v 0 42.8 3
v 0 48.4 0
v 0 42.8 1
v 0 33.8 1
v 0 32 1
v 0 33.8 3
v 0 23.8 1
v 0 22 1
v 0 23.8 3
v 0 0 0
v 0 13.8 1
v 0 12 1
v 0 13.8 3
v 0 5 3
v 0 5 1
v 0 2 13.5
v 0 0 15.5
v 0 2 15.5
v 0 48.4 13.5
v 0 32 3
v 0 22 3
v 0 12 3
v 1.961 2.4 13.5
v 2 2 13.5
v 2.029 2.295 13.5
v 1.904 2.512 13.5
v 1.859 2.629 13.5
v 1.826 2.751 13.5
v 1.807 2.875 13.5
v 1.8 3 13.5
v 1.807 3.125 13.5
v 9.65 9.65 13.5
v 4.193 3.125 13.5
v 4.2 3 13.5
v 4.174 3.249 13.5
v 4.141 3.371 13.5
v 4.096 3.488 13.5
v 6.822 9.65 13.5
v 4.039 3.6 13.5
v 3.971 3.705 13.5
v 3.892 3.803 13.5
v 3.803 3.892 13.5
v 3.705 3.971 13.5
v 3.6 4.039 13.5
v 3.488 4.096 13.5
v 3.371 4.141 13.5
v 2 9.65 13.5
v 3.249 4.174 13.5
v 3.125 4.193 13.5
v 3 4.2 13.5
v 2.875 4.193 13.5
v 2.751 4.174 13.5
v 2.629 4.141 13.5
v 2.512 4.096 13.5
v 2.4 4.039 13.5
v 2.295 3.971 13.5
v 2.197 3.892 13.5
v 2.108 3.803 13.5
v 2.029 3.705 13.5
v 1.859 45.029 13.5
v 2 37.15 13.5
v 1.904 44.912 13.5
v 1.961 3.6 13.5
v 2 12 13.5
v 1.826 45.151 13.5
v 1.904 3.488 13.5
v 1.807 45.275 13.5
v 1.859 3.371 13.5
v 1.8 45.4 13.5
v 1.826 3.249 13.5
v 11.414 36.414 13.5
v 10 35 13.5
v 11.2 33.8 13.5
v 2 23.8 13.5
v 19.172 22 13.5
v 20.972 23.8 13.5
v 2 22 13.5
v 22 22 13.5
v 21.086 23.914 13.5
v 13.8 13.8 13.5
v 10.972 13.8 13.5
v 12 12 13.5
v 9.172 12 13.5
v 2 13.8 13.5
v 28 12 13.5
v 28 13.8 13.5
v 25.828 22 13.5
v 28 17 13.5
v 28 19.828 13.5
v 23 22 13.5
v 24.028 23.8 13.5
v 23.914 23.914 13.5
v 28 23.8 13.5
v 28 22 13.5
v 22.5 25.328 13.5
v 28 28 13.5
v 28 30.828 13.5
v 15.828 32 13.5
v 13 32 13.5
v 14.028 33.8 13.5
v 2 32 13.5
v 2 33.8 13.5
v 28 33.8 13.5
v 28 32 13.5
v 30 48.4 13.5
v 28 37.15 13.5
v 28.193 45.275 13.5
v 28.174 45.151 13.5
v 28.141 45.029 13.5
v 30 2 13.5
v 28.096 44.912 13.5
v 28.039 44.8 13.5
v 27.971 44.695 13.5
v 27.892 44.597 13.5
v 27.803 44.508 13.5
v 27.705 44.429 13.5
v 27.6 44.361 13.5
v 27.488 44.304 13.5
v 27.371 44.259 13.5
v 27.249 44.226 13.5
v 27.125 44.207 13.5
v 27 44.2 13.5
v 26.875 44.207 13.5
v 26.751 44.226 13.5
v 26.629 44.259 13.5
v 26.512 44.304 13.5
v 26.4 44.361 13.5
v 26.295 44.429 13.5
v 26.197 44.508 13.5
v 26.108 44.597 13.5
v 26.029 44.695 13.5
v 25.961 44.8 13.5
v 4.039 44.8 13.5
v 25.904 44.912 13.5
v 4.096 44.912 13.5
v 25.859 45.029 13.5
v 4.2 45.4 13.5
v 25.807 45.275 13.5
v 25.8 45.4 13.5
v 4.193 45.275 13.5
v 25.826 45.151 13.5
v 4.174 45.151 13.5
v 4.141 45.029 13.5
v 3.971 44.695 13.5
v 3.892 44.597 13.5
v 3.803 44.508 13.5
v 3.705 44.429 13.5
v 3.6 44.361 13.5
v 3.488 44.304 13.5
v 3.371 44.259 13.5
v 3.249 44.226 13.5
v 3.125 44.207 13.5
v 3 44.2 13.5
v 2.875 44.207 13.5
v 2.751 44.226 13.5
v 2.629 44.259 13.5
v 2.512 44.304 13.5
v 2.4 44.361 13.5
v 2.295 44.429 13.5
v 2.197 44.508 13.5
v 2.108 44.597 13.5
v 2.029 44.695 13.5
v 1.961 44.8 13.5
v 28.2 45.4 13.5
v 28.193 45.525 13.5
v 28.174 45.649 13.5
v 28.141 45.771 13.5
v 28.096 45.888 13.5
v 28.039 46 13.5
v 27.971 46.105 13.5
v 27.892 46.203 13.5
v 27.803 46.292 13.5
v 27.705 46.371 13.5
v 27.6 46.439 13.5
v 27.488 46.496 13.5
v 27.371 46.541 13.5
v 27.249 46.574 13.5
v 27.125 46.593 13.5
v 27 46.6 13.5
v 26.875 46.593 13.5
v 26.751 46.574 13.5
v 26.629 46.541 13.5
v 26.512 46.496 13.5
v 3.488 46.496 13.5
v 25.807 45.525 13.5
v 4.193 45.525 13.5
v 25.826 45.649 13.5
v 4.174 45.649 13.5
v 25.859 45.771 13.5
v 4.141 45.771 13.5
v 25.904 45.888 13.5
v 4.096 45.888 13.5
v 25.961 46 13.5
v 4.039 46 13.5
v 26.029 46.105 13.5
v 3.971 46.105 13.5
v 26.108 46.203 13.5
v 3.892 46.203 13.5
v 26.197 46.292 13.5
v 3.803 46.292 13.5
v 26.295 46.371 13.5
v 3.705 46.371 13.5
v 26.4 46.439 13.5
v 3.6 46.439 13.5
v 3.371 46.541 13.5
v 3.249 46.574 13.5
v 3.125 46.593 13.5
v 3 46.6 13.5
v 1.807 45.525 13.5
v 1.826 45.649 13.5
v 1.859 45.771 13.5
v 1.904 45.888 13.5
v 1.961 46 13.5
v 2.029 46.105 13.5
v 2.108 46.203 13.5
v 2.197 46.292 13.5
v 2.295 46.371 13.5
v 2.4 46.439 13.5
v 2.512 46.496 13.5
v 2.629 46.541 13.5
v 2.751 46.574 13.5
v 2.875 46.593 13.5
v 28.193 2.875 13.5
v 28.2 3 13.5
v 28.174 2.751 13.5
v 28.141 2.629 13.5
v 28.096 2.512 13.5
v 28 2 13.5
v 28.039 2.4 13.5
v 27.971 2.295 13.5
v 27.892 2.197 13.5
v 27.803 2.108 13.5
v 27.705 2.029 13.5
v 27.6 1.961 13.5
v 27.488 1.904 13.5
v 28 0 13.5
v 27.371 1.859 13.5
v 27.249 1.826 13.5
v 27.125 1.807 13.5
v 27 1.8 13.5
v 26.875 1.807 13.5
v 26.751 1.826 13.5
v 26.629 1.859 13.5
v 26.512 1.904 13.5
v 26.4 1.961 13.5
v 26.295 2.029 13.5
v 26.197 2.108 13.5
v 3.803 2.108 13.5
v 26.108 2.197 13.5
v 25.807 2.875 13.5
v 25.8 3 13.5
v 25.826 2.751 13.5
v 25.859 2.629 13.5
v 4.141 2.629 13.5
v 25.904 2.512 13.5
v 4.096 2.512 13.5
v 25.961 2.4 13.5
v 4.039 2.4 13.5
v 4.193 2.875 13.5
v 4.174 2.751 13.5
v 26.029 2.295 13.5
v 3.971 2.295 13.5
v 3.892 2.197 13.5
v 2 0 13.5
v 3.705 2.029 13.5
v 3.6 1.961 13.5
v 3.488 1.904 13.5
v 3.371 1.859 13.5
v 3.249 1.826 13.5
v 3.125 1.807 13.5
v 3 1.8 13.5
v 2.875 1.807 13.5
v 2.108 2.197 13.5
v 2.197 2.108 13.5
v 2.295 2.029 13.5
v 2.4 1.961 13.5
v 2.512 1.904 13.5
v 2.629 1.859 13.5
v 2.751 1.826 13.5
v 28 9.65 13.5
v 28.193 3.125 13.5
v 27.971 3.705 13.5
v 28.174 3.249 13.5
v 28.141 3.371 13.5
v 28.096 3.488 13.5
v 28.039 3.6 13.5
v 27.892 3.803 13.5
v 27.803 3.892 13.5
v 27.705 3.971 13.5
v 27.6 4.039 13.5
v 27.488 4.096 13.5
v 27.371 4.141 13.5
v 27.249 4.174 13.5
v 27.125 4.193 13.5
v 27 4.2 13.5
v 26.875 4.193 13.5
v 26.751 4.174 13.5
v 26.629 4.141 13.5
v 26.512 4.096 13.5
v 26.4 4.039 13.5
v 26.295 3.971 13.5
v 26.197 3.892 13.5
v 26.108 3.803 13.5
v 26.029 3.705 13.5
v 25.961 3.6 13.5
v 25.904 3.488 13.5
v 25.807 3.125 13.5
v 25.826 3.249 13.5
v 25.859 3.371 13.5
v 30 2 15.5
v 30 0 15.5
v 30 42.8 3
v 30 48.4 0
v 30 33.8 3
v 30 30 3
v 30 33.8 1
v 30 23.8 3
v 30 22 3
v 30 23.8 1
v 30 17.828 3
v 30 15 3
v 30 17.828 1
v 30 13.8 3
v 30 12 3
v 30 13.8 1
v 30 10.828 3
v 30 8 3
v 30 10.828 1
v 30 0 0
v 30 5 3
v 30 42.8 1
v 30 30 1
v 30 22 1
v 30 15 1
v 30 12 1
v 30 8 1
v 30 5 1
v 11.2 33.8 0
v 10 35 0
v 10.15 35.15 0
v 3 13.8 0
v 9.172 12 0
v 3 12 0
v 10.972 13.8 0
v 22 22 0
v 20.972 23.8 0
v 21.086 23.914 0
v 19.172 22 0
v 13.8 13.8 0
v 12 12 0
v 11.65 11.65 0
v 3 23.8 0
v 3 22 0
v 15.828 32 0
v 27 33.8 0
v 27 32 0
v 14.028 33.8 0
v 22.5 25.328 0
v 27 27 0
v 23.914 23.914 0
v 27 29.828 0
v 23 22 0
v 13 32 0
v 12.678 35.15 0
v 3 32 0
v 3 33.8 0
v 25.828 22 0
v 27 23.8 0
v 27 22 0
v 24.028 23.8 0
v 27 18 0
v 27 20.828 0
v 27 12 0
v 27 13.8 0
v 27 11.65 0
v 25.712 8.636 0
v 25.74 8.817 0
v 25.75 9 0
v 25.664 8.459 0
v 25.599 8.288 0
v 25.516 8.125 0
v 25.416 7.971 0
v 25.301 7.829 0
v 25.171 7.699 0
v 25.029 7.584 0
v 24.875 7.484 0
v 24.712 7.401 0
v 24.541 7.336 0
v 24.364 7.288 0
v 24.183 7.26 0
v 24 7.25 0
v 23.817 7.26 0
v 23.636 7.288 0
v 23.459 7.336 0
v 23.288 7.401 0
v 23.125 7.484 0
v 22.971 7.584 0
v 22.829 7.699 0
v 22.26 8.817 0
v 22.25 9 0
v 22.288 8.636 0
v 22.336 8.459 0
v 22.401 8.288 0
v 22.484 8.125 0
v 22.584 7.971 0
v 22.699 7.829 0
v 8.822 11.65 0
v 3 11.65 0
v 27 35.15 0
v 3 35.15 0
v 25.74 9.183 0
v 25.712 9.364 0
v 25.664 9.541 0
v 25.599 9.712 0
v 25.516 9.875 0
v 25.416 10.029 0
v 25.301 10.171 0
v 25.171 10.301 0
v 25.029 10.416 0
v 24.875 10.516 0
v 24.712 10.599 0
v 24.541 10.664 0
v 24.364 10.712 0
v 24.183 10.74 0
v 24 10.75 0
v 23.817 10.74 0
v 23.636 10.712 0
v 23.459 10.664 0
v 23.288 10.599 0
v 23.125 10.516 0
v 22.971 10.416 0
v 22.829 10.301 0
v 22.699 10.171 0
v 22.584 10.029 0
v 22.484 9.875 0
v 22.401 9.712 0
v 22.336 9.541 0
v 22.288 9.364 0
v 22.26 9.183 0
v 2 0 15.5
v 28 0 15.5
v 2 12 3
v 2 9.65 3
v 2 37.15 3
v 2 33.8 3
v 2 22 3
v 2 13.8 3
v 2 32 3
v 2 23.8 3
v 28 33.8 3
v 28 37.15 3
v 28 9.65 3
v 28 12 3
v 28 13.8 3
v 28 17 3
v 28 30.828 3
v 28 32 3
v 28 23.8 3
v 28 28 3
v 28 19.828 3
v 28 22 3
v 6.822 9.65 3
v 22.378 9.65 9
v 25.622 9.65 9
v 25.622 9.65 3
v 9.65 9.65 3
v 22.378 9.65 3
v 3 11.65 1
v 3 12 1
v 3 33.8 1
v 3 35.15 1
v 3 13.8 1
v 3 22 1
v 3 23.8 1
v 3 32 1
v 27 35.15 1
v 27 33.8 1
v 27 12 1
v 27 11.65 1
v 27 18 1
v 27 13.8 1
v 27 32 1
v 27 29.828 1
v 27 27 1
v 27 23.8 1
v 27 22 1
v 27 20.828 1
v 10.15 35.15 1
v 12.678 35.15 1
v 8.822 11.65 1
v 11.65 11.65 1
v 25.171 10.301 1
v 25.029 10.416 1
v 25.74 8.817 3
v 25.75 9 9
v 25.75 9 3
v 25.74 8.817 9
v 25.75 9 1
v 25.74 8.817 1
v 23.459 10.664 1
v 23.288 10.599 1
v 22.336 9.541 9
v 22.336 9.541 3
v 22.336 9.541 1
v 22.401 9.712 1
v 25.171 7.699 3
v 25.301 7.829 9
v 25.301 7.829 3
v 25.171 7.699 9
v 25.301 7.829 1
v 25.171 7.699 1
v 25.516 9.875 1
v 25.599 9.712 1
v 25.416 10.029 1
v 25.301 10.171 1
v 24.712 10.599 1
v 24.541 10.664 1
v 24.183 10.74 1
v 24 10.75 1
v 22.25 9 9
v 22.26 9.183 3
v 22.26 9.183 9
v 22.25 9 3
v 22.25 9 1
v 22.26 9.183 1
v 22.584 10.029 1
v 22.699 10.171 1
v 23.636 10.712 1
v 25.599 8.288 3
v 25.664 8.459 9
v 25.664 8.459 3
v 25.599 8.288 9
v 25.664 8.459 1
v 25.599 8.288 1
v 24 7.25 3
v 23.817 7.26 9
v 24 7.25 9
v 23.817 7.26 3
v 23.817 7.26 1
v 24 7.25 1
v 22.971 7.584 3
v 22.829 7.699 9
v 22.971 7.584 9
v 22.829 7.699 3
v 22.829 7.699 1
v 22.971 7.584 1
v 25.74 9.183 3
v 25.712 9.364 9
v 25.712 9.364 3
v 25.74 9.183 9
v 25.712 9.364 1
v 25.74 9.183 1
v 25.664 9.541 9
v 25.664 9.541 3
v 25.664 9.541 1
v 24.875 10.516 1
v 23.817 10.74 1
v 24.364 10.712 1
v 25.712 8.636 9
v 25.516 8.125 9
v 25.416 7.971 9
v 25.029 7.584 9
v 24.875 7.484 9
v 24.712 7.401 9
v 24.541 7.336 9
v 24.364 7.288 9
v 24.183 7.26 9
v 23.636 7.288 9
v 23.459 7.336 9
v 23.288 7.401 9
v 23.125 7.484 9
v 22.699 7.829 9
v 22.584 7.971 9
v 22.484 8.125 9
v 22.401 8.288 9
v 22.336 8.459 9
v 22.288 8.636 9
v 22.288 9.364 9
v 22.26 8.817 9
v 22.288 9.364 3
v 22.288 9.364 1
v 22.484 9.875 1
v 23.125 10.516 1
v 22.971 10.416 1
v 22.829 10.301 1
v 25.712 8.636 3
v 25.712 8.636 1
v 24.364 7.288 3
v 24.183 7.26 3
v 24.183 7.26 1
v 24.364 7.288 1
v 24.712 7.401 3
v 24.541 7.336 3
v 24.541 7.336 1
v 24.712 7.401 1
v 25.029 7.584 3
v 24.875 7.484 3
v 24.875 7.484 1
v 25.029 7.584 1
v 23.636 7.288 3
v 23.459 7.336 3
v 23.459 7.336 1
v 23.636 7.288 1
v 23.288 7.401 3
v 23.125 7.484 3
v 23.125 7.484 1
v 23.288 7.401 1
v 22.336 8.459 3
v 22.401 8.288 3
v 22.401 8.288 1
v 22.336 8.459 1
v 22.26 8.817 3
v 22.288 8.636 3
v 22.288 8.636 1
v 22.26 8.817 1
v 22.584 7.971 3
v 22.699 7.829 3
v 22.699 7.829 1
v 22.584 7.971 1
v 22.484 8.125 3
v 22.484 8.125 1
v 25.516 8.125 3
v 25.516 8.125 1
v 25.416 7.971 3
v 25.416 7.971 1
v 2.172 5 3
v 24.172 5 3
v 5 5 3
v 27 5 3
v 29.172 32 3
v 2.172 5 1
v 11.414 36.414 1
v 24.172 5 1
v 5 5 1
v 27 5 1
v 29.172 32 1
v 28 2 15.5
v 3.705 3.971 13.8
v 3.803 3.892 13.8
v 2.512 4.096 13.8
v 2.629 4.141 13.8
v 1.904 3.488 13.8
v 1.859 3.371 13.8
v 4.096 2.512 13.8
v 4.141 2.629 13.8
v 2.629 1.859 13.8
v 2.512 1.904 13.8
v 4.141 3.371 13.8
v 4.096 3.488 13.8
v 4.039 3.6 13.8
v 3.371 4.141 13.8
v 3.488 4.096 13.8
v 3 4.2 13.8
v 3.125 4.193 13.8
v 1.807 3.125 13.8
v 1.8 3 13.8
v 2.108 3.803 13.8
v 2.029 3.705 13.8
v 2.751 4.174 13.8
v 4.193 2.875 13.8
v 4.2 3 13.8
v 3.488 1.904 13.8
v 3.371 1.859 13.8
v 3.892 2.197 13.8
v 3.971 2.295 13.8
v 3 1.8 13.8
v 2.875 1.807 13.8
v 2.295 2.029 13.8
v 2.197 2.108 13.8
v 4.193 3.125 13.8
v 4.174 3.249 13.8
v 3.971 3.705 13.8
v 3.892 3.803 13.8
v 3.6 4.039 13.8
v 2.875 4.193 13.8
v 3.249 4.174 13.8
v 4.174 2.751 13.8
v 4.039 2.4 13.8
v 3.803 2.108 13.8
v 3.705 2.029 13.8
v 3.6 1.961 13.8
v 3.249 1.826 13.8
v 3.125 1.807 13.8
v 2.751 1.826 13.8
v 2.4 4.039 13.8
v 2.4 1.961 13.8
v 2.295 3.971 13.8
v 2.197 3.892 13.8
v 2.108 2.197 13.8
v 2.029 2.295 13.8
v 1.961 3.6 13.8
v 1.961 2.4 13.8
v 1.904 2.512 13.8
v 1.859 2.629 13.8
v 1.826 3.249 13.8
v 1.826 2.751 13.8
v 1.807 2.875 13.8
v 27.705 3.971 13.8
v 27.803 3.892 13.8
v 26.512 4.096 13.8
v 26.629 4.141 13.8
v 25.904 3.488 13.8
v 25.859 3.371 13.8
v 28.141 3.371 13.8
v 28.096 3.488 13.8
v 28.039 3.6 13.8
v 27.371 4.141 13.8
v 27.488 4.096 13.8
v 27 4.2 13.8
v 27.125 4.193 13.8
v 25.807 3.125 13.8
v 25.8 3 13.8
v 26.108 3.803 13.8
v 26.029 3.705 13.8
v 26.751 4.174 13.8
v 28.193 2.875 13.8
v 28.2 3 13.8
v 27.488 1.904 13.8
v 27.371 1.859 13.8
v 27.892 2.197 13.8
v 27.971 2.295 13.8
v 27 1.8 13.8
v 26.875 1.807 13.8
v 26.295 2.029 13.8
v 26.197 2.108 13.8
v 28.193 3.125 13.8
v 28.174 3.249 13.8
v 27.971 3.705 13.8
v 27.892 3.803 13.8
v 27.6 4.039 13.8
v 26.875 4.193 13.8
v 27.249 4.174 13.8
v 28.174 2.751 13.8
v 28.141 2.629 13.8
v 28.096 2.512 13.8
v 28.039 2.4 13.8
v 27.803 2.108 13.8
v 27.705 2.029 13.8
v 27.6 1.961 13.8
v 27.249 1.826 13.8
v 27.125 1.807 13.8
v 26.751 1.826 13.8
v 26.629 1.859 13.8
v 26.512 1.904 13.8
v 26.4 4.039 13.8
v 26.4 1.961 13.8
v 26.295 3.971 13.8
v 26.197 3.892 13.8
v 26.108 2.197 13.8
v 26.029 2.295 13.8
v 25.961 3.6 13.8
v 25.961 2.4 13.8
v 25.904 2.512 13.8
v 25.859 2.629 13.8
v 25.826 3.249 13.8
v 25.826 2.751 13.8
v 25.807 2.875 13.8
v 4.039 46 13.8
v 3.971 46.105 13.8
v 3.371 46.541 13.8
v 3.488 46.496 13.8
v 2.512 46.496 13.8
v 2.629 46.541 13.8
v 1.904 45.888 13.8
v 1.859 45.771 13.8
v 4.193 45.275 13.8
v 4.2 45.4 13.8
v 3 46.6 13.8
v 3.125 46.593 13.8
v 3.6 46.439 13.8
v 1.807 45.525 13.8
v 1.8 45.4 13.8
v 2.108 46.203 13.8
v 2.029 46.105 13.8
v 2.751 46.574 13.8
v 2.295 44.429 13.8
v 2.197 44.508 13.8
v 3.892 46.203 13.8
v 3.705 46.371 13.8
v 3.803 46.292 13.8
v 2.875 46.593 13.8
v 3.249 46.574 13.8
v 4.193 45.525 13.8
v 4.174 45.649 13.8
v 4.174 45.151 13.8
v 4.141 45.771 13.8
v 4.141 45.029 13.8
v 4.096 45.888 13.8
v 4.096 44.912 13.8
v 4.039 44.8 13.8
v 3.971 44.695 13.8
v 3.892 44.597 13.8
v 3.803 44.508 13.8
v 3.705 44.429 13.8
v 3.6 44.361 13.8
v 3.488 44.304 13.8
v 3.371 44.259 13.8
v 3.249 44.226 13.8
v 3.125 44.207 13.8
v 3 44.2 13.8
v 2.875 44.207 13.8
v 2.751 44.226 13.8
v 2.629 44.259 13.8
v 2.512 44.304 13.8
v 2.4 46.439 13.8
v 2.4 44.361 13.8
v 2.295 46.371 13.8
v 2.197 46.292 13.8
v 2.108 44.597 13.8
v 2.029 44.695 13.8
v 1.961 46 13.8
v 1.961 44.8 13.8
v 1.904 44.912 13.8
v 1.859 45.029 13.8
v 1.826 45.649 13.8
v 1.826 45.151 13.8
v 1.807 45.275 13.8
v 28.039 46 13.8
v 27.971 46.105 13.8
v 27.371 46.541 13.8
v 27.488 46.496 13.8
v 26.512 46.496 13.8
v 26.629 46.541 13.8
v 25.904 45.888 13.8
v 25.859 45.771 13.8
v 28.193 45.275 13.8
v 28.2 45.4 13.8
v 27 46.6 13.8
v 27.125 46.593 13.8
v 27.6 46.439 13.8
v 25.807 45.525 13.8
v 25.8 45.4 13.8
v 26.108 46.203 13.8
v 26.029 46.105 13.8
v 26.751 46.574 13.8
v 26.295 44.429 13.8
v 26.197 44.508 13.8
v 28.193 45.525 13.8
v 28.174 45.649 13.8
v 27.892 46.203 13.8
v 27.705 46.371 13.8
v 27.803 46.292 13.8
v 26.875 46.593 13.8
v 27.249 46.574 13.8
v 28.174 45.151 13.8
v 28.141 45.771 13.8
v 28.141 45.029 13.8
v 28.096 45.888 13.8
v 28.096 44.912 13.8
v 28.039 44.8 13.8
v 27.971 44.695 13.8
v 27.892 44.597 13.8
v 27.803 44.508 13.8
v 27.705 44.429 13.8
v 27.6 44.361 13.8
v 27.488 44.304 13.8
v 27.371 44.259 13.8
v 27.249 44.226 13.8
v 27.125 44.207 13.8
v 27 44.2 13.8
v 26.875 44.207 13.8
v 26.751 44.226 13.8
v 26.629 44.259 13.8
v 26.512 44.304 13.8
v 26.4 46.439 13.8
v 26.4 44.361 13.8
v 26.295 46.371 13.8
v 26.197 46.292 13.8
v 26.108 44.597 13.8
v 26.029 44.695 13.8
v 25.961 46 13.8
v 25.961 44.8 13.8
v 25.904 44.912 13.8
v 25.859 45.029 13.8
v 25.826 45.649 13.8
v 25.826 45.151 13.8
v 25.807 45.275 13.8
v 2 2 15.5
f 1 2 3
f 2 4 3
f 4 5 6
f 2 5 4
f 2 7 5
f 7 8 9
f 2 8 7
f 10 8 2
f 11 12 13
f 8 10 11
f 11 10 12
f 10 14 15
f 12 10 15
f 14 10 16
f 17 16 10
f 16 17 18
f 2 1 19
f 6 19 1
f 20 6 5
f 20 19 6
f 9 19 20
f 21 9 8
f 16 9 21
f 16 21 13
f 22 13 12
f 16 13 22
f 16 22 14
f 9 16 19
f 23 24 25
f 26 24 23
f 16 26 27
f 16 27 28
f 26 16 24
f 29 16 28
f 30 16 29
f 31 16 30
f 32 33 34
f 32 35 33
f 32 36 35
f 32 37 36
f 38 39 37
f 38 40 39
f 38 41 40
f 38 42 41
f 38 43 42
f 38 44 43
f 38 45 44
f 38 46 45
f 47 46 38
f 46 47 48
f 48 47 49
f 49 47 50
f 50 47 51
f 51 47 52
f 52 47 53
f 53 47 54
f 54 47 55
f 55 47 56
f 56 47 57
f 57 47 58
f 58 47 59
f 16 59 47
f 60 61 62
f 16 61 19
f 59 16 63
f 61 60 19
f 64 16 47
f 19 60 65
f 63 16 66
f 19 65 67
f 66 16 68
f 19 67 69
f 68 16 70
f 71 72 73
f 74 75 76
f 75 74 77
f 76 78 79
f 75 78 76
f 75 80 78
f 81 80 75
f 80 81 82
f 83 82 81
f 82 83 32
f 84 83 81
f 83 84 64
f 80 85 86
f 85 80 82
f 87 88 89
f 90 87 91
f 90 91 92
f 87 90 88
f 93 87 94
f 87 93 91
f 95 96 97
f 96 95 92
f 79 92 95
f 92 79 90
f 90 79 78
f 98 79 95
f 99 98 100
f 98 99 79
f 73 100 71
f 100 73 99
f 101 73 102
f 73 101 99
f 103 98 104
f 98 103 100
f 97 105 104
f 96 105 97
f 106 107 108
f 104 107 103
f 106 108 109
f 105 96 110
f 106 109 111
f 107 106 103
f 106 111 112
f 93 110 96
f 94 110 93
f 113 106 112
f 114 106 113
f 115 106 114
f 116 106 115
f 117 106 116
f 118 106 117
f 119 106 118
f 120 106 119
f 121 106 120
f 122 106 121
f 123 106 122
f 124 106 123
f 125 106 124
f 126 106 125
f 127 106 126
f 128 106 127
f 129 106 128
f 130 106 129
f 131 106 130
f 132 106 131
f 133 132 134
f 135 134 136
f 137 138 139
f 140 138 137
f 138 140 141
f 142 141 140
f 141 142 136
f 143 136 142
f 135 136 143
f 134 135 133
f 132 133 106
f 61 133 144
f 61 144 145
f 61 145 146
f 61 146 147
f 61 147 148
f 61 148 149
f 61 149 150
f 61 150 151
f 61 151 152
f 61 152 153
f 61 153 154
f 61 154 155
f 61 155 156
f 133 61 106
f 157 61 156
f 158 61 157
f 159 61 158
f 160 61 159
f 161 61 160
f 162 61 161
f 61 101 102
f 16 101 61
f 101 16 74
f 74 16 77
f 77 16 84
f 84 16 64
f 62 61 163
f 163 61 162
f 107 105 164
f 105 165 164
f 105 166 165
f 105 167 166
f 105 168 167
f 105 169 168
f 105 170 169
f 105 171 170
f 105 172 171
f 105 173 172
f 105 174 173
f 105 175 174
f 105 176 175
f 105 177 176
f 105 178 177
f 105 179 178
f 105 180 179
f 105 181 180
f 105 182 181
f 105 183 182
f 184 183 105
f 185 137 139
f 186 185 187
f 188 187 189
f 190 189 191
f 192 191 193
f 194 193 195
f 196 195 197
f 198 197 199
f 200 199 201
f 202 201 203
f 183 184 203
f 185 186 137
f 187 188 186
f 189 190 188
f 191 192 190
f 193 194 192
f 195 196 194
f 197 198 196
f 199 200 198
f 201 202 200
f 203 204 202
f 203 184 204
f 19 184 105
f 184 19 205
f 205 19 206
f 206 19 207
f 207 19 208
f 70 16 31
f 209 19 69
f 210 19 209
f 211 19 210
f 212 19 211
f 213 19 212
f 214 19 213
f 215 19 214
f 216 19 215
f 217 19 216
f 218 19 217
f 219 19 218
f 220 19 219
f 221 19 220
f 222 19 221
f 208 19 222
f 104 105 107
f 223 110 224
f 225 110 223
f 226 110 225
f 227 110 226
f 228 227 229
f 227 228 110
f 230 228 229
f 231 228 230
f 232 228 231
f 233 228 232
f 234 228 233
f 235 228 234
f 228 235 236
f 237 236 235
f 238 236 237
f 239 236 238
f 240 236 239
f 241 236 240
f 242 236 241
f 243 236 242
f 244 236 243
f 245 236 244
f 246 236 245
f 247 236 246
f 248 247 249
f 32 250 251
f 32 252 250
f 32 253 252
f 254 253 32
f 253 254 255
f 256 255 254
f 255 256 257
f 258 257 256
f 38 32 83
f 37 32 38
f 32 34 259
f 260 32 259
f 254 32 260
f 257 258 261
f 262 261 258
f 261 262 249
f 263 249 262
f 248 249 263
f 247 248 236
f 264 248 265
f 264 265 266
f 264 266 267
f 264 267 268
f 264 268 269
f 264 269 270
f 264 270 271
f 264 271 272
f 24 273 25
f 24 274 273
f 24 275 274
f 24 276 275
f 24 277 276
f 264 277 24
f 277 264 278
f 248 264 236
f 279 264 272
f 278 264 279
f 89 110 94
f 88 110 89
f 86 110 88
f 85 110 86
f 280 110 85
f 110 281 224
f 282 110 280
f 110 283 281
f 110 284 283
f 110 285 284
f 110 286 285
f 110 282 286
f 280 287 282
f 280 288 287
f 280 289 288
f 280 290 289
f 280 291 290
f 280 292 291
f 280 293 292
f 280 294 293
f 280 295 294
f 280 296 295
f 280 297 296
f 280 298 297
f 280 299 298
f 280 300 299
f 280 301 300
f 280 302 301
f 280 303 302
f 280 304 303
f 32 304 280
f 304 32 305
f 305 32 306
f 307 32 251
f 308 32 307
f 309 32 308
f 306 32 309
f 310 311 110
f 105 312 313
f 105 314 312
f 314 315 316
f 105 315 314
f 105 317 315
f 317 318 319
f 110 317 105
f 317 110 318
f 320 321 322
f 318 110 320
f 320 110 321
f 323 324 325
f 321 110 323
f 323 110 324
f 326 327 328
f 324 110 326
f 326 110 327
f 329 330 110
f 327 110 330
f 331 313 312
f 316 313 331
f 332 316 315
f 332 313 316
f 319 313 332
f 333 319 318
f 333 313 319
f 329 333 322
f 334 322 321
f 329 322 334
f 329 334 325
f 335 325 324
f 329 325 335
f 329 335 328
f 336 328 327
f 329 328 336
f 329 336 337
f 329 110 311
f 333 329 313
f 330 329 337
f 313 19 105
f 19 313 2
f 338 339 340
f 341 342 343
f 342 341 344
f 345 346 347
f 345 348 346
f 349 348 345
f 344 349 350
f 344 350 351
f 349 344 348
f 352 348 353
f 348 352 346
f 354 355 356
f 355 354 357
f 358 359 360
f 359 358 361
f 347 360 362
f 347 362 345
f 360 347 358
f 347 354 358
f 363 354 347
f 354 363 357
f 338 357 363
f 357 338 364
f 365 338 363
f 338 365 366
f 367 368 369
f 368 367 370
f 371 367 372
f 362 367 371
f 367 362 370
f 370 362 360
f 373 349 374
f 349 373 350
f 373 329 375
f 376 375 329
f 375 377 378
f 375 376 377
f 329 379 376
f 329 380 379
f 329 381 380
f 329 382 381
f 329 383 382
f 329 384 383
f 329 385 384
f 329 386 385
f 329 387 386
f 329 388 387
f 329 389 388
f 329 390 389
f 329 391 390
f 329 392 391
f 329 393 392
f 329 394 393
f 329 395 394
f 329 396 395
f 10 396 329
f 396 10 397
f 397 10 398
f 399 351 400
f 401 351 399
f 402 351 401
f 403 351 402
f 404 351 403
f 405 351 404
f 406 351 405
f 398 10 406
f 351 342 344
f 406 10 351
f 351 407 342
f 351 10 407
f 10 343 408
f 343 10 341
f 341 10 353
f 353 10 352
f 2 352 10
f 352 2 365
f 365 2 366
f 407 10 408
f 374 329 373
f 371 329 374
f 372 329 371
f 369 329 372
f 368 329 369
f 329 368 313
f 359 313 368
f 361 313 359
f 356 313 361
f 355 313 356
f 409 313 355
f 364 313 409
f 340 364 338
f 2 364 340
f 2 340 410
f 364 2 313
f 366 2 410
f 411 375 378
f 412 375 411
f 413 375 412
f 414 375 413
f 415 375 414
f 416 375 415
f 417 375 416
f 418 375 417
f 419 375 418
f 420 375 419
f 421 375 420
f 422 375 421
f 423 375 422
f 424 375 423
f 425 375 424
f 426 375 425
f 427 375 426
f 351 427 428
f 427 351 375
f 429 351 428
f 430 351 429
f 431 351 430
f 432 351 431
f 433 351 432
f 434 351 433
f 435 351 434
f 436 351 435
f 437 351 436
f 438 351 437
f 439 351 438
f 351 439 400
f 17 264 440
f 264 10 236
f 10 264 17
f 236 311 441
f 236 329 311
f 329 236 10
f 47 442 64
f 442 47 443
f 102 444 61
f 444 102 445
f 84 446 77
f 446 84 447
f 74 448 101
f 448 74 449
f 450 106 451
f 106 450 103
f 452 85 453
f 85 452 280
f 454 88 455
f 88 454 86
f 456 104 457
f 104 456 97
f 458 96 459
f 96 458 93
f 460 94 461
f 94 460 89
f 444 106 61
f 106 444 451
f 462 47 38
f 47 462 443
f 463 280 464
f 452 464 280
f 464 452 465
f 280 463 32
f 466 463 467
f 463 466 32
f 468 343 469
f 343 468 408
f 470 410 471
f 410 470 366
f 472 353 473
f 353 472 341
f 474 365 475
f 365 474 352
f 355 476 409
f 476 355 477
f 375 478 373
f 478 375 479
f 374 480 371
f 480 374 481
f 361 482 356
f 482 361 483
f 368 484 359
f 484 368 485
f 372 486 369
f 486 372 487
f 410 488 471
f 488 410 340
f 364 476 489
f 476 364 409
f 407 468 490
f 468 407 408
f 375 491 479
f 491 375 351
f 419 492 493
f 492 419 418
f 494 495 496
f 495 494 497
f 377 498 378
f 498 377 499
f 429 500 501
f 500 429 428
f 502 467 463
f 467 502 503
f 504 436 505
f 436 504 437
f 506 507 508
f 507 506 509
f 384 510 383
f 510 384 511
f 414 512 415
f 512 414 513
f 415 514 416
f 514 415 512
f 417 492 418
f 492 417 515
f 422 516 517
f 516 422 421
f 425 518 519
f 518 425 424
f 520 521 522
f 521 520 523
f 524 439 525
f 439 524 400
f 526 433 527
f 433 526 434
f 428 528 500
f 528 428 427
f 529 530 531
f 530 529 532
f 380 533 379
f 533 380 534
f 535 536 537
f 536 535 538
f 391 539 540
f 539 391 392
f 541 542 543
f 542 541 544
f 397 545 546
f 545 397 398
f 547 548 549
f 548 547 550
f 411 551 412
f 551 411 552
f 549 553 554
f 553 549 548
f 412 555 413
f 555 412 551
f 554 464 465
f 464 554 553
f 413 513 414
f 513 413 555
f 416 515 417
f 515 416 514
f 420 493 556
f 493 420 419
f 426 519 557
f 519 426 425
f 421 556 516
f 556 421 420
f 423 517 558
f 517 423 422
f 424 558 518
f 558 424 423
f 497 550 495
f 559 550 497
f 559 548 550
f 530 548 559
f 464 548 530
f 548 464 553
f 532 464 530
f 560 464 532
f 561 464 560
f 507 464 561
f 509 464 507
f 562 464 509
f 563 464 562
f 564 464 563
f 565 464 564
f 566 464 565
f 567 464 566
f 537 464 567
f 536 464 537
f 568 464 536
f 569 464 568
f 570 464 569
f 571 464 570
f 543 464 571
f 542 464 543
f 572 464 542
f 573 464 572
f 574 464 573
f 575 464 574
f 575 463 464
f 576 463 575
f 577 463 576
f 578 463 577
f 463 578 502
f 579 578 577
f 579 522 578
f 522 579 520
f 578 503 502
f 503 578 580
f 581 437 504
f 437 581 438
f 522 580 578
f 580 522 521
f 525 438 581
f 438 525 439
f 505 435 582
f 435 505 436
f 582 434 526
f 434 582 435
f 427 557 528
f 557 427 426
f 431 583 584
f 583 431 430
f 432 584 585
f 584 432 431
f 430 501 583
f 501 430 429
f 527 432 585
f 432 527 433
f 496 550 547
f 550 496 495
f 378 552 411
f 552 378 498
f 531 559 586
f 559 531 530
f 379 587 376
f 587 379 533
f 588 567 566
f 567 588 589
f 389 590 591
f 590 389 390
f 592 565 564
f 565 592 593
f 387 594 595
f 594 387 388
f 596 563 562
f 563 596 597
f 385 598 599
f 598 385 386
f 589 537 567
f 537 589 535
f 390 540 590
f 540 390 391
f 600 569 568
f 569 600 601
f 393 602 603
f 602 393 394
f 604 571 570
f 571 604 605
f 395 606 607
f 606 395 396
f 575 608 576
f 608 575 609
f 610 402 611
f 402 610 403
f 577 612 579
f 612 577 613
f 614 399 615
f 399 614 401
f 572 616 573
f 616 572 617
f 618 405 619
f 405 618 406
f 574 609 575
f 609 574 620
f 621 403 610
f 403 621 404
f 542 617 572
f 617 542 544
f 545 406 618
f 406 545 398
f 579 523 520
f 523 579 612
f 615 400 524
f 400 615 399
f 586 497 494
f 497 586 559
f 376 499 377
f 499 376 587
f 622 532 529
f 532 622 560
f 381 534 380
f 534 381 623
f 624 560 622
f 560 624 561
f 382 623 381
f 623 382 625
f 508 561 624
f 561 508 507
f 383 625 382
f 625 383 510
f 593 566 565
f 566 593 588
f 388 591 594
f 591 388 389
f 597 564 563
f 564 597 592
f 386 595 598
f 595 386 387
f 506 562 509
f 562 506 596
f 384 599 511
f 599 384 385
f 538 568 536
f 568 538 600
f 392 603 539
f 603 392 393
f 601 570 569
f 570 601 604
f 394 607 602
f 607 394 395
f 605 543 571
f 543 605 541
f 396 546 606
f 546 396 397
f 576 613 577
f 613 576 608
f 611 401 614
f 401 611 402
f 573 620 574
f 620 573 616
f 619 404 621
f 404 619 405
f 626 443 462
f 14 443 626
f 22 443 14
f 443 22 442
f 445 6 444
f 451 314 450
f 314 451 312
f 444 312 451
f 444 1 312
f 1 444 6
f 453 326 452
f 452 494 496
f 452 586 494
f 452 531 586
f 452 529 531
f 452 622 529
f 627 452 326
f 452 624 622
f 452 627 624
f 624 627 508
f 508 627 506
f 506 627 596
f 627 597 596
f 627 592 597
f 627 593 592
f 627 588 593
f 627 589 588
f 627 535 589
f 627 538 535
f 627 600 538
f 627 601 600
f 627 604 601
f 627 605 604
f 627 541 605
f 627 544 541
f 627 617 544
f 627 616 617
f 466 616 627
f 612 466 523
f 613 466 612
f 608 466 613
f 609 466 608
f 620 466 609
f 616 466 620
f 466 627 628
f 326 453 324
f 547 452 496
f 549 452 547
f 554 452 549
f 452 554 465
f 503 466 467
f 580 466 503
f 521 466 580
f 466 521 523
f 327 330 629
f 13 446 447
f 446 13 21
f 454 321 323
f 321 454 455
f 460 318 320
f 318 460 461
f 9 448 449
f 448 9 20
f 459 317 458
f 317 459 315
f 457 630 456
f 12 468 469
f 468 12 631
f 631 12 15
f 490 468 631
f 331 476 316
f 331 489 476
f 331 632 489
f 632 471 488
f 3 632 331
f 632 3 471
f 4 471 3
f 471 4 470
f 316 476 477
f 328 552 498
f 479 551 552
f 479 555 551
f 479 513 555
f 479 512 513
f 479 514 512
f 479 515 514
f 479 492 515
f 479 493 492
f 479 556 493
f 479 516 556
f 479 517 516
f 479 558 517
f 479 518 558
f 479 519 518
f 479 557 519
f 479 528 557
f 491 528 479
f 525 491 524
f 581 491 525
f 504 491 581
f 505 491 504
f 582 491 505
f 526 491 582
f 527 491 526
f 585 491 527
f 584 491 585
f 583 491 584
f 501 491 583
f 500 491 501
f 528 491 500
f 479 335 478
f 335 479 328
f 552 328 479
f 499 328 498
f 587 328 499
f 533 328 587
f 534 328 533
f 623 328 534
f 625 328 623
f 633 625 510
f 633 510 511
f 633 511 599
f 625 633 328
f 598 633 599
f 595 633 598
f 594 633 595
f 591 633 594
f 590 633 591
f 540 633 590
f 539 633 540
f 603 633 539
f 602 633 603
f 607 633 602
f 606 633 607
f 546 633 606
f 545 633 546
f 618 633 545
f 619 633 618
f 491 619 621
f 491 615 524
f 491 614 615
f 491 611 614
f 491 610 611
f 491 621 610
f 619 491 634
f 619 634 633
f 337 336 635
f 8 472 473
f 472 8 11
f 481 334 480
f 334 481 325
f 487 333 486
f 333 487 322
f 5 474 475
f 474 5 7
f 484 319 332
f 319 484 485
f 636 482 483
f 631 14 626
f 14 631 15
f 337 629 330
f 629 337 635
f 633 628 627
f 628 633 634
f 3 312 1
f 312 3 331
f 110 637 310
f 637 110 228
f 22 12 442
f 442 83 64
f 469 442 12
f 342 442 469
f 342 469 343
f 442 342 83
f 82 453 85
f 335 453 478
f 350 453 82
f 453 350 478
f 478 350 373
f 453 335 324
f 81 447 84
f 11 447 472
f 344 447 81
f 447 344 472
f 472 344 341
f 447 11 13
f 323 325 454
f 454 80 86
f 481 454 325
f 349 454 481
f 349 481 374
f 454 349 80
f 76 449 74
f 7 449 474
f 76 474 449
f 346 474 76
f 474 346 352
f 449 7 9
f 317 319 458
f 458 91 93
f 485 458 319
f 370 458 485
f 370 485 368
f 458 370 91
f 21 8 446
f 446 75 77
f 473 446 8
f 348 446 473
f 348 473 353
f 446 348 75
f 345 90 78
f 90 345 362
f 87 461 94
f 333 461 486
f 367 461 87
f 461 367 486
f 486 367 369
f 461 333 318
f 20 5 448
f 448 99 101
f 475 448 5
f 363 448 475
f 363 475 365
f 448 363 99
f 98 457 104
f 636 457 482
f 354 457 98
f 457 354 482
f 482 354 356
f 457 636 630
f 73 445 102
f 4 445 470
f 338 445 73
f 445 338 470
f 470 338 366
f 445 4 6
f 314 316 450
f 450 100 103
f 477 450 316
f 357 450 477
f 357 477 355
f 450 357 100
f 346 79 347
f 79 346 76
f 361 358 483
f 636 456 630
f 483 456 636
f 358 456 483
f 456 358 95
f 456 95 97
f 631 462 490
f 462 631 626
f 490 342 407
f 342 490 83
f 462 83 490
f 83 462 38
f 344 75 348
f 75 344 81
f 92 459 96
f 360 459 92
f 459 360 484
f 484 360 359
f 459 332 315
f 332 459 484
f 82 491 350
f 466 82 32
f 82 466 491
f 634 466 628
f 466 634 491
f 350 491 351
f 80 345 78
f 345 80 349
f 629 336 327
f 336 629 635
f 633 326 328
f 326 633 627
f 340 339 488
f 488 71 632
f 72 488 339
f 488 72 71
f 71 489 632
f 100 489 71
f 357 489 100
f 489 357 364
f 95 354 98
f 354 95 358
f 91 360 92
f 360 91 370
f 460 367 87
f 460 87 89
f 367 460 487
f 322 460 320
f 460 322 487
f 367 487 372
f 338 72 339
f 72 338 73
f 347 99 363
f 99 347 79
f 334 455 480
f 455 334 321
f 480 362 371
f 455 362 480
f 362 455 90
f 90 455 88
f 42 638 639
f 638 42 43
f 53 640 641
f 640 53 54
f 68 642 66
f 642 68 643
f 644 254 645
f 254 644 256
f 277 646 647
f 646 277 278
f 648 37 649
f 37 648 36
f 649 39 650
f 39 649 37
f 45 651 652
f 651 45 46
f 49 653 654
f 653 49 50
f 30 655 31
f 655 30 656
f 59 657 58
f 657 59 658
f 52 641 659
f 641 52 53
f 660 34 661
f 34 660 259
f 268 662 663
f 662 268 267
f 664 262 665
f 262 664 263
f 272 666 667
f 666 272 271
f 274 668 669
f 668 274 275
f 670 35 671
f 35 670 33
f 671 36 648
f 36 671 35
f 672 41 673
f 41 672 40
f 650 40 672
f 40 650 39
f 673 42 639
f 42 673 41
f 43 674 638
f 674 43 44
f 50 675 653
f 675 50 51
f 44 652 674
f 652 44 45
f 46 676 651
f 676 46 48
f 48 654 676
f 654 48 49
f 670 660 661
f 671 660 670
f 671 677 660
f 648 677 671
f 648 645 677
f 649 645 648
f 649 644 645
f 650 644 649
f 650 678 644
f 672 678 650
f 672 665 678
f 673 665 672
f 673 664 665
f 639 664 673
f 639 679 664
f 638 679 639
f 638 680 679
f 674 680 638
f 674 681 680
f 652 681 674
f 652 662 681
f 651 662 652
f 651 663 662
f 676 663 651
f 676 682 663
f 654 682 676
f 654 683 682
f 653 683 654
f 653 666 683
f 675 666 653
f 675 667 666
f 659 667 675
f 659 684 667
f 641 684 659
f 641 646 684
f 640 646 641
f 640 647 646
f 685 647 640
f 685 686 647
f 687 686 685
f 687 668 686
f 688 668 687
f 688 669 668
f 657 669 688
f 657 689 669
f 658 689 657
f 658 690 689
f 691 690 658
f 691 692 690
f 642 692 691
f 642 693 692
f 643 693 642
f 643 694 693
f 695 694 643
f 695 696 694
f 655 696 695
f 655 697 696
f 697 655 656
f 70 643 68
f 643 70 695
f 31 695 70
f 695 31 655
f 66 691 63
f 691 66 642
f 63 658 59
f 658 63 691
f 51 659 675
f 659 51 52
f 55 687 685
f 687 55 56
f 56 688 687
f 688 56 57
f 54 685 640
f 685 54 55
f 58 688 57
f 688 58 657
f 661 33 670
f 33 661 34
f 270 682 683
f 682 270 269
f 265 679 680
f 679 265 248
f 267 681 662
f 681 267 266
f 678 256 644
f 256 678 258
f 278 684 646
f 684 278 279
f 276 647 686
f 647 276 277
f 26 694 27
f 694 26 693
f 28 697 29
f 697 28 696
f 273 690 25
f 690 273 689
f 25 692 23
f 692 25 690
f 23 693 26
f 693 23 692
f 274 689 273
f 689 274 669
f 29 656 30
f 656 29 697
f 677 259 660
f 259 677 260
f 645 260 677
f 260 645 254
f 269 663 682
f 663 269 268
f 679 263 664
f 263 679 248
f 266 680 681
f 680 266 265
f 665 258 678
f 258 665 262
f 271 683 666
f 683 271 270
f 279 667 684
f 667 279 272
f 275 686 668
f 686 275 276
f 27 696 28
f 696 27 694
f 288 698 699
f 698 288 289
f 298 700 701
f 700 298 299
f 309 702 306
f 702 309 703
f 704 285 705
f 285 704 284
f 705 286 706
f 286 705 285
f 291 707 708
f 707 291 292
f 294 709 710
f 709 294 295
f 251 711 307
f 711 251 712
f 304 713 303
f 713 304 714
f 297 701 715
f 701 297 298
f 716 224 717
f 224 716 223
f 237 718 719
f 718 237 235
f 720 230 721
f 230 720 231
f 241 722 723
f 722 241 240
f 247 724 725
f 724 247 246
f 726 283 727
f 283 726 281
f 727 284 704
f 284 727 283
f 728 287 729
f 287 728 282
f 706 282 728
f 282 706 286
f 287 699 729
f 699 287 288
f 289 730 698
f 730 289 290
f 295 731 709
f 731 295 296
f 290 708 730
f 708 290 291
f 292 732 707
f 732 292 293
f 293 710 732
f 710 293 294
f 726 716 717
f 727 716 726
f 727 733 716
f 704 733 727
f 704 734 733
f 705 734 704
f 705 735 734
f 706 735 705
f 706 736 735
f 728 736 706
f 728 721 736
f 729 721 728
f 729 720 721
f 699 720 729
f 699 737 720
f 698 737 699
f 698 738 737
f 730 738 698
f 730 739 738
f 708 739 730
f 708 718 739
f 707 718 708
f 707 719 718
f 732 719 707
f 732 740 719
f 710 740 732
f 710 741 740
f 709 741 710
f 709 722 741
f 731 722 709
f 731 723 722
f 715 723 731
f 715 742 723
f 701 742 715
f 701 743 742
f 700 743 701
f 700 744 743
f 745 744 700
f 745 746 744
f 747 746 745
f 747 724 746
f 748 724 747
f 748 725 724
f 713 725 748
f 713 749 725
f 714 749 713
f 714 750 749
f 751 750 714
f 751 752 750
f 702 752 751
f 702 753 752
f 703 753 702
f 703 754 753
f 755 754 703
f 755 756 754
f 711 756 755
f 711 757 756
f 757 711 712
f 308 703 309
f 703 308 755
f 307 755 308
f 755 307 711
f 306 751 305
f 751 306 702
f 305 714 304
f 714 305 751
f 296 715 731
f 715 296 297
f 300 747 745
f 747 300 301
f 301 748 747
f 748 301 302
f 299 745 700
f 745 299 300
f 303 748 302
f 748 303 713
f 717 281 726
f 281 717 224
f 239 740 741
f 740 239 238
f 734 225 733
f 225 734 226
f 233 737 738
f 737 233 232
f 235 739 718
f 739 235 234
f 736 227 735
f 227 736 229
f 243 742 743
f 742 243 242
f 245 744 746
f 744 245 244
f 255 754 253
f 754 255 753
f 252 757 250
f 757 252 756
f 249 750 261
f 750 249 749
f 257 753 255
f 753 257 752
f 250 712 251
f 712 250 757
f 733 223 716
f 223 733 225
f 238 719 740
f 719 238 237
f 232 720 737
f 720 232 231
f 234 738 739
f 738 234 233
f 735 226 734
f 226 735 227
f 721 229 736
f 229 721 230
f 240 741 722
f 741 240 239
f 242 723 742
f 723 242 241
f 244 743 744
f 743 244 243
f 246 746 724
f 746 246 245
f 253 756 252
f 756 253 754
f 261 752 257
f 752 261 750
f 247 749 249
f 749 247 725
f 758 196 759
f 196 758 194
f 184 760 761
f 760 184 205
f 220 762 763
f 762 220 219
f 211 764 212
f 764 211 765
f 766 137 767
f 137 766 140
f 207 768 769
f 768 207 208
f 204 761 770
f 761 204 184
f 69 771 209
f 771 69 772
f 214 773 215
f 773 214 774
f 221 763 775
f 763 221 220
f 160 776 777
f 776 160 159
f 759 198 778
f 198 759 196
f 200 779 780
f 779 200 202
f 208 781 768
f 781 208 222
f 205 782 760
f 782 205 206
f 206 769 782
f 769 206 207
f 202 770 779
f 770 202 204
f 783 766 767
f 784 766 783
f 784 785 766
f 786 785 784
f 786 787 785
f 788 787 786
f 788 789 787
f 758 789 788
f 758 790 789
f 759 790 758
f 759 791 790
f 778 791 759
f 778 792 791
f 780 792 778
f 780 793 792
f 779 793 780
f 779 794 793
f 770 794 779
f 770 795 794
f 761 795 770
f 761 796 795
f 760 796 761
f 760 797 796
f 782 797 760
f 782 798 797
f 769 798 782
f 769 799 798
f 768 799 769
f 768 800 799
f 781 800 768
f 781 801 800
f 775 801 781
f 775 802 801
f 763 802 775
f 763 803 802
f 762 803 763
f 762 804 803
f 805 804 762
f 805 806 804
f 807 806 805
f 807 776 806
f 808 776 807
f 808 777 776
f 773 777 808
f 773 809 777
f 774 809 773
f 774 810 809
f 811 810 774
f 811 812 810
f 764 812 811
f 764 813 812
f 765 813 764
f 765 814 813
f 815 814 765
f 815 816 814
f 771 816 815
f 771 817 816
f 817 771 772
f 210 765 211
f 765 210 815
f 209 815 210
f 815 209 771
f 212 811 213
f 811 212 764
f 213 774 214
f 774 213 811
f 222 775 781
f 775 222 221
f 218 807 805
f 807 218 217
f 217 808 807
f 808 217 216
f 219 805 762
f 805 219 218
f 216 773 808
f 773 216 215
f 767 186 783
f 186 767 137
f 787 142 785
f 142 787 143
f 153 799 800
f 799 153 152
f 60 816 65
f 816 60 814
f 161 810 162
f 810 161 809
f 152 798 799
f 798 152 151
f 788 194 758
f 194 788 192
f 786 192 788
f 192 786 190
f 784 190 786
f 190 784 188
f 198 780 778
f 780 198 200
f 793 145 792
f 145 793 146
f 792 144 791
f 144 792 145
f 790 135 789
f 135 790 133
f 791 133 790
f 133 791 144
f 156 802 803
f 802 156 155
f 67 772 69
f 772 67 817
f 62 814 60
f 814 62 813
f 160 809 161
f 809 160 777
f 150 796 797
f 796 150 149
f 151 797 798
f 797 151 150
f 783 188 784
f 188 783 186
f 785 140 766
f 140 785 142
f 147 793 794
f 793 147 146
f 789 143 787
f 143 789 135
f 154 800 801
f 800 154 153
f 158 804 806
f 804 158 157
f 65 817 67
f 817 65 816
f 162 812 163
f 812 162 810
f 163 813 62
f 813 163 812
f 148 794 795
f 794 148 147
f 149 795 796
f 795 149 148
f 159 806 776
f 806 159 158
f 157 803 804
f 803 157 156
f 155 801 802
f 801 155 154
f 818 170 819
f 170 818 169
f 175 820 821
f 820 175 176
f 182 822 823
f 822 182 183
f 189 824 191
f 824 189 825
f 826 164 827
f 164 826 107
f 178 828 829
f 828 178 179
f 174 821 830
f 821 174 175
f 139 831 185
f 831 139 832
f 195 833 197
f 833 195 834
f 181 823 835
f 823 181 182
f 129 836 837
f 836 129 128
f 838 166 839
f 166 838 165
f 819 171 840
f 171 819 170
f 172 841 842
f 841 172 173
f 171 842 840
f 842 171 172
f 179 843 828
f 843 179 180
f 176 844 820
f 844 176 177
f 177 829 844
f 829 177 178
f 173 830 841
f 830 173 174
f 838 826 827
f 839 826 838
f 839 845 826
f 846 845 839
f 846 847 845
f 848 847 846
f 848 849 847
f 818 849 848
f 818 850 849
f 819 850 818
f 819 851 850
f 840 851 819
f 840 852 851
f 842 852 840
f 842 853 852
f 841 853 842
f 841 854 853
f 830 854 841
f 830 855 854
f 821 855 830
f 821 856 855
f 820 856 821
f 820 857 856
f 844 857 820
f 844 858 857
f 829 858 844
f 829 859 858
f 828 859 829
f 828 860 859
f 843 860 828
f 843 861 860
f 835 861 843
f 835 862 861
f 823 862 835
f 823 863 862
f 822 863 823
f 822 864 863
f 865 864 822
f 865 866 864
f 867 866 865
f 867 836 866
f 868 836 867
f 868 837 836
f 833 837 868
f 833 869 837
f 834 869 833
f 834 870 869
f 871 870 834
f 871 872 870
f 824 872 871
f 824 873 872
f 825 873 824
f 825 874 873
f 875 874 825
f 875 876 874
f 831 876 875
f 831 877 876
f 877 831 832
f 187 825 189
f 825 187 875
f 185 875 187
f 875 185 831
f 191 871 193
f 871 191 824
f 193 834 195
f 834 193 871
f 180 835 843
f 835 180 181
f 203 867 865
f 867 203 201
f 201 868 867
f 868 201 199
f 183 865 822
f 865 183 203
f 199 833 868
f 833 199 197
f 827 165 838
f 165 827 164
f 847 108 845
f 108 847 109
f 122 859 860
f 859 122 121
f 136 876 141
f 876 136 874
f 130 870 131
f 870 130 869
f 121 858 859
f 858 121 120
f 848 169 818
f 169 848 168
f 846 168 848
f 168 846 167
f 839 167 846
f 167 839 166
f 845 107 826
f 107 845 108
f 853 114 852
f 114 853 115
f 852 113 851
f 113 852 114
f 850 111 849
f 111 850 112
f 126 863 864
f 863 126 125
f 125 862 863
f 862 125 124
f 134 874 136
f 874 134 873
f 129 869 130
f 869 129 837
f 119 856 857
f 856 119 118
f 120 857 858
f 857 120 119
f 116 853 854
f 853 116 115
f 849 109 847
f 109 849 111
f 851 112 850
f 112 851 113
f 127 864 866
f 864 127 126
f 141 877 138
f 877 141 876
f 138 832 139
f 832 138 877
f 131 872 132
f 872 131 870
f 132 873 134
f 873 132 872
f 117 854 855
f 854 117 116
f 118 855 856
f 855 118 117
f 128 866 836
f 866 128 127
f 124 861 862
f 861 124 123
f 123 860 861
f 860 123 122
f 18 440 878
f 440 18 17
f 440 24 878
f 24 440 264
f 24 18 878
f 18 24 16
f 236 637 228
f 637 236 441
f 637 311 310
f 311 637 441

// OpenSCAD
/*
 * FluxGuard Enclosure - BRIDGE (Component Support)
 * Print: Flat (as-is)
 * Supports: RECOMMENDED for alignment tabs
 */

// --- Parameters ---
pcb_z = 10.0; 
raceway_w = 14.0;
separator_w = 1.6;
wall = 1.8;
box_w = 63.0;
$fn = 60;

bridge_span = box_w - 2*wall - raceway_w - separator_w;
bridge_h = 13.5;

module component_bridge() {
    bridge_len = 30.0;
    
    union() {
        difference() {
            cube([bridge_len, bridge_span + 2*wall + 1, bridge_h]);
            translate([2, (bridge_span + 3 - 27.5)/2, 2.5]) cube([26, 27.5, 50]); 
            translate([3, (bridge_span + 3 - 23.5)/2, -1]) cube([24, 23.5, 100]); 
            translate([bridge_len - 6, 9, -1]) cylinder(d=3.5, h=10); 
            translate([-1, 5, 1]) cube([32, bridge_span - 6, 2]);
        }
        
        // Ribs
        for(y_pos = [2, 12, 22, 32]) translate([0, y_pos, 0]) cube([bridge_len, 1.8, bridge_h]);
        
        // Diagonal bracing
        intersection() {
             cube([bridge_len, bridge_span + 3, bridge_h]);
             union() {
                 translate([0,0,0]) rotate([0,0,45]) cube([55, 2, bridge_h]);
                 translate([22,0,0]) rotate([0,0,45]) cube([55, 2, bridge_h]);
                 translate([10,35,0]) rotate([0,0,-45]) cube([55, 2, bridge_h]);
             }
        }
        
        // Top pads
        translate([3, 3, bridge_h]) cylinder(r=1.2, h=0.3);
        translate([bridge_len-3, 3, bridge_h]) cylinder(r=1.2, h=0.3);
        translate([3, bridge_span+2*wall-2, bridge_h]) cylinder(r=1.2, h=0.3);
        translate([bridge_len-3, bridge_span+2*wall-2, bridge_h]) cylinder(r=1.2, h=0.3);
        
        // Alignment tabs
        translate([0, 0, 0]) cube([2, 2, bridge_h + 2]);
        translate([bridge_len - 2, 0, 0]) cube([2, 2, bridge_h + 2]);
    }
}

// === PRINT-READY: Flat (enable supports) ===
component_bridge();
